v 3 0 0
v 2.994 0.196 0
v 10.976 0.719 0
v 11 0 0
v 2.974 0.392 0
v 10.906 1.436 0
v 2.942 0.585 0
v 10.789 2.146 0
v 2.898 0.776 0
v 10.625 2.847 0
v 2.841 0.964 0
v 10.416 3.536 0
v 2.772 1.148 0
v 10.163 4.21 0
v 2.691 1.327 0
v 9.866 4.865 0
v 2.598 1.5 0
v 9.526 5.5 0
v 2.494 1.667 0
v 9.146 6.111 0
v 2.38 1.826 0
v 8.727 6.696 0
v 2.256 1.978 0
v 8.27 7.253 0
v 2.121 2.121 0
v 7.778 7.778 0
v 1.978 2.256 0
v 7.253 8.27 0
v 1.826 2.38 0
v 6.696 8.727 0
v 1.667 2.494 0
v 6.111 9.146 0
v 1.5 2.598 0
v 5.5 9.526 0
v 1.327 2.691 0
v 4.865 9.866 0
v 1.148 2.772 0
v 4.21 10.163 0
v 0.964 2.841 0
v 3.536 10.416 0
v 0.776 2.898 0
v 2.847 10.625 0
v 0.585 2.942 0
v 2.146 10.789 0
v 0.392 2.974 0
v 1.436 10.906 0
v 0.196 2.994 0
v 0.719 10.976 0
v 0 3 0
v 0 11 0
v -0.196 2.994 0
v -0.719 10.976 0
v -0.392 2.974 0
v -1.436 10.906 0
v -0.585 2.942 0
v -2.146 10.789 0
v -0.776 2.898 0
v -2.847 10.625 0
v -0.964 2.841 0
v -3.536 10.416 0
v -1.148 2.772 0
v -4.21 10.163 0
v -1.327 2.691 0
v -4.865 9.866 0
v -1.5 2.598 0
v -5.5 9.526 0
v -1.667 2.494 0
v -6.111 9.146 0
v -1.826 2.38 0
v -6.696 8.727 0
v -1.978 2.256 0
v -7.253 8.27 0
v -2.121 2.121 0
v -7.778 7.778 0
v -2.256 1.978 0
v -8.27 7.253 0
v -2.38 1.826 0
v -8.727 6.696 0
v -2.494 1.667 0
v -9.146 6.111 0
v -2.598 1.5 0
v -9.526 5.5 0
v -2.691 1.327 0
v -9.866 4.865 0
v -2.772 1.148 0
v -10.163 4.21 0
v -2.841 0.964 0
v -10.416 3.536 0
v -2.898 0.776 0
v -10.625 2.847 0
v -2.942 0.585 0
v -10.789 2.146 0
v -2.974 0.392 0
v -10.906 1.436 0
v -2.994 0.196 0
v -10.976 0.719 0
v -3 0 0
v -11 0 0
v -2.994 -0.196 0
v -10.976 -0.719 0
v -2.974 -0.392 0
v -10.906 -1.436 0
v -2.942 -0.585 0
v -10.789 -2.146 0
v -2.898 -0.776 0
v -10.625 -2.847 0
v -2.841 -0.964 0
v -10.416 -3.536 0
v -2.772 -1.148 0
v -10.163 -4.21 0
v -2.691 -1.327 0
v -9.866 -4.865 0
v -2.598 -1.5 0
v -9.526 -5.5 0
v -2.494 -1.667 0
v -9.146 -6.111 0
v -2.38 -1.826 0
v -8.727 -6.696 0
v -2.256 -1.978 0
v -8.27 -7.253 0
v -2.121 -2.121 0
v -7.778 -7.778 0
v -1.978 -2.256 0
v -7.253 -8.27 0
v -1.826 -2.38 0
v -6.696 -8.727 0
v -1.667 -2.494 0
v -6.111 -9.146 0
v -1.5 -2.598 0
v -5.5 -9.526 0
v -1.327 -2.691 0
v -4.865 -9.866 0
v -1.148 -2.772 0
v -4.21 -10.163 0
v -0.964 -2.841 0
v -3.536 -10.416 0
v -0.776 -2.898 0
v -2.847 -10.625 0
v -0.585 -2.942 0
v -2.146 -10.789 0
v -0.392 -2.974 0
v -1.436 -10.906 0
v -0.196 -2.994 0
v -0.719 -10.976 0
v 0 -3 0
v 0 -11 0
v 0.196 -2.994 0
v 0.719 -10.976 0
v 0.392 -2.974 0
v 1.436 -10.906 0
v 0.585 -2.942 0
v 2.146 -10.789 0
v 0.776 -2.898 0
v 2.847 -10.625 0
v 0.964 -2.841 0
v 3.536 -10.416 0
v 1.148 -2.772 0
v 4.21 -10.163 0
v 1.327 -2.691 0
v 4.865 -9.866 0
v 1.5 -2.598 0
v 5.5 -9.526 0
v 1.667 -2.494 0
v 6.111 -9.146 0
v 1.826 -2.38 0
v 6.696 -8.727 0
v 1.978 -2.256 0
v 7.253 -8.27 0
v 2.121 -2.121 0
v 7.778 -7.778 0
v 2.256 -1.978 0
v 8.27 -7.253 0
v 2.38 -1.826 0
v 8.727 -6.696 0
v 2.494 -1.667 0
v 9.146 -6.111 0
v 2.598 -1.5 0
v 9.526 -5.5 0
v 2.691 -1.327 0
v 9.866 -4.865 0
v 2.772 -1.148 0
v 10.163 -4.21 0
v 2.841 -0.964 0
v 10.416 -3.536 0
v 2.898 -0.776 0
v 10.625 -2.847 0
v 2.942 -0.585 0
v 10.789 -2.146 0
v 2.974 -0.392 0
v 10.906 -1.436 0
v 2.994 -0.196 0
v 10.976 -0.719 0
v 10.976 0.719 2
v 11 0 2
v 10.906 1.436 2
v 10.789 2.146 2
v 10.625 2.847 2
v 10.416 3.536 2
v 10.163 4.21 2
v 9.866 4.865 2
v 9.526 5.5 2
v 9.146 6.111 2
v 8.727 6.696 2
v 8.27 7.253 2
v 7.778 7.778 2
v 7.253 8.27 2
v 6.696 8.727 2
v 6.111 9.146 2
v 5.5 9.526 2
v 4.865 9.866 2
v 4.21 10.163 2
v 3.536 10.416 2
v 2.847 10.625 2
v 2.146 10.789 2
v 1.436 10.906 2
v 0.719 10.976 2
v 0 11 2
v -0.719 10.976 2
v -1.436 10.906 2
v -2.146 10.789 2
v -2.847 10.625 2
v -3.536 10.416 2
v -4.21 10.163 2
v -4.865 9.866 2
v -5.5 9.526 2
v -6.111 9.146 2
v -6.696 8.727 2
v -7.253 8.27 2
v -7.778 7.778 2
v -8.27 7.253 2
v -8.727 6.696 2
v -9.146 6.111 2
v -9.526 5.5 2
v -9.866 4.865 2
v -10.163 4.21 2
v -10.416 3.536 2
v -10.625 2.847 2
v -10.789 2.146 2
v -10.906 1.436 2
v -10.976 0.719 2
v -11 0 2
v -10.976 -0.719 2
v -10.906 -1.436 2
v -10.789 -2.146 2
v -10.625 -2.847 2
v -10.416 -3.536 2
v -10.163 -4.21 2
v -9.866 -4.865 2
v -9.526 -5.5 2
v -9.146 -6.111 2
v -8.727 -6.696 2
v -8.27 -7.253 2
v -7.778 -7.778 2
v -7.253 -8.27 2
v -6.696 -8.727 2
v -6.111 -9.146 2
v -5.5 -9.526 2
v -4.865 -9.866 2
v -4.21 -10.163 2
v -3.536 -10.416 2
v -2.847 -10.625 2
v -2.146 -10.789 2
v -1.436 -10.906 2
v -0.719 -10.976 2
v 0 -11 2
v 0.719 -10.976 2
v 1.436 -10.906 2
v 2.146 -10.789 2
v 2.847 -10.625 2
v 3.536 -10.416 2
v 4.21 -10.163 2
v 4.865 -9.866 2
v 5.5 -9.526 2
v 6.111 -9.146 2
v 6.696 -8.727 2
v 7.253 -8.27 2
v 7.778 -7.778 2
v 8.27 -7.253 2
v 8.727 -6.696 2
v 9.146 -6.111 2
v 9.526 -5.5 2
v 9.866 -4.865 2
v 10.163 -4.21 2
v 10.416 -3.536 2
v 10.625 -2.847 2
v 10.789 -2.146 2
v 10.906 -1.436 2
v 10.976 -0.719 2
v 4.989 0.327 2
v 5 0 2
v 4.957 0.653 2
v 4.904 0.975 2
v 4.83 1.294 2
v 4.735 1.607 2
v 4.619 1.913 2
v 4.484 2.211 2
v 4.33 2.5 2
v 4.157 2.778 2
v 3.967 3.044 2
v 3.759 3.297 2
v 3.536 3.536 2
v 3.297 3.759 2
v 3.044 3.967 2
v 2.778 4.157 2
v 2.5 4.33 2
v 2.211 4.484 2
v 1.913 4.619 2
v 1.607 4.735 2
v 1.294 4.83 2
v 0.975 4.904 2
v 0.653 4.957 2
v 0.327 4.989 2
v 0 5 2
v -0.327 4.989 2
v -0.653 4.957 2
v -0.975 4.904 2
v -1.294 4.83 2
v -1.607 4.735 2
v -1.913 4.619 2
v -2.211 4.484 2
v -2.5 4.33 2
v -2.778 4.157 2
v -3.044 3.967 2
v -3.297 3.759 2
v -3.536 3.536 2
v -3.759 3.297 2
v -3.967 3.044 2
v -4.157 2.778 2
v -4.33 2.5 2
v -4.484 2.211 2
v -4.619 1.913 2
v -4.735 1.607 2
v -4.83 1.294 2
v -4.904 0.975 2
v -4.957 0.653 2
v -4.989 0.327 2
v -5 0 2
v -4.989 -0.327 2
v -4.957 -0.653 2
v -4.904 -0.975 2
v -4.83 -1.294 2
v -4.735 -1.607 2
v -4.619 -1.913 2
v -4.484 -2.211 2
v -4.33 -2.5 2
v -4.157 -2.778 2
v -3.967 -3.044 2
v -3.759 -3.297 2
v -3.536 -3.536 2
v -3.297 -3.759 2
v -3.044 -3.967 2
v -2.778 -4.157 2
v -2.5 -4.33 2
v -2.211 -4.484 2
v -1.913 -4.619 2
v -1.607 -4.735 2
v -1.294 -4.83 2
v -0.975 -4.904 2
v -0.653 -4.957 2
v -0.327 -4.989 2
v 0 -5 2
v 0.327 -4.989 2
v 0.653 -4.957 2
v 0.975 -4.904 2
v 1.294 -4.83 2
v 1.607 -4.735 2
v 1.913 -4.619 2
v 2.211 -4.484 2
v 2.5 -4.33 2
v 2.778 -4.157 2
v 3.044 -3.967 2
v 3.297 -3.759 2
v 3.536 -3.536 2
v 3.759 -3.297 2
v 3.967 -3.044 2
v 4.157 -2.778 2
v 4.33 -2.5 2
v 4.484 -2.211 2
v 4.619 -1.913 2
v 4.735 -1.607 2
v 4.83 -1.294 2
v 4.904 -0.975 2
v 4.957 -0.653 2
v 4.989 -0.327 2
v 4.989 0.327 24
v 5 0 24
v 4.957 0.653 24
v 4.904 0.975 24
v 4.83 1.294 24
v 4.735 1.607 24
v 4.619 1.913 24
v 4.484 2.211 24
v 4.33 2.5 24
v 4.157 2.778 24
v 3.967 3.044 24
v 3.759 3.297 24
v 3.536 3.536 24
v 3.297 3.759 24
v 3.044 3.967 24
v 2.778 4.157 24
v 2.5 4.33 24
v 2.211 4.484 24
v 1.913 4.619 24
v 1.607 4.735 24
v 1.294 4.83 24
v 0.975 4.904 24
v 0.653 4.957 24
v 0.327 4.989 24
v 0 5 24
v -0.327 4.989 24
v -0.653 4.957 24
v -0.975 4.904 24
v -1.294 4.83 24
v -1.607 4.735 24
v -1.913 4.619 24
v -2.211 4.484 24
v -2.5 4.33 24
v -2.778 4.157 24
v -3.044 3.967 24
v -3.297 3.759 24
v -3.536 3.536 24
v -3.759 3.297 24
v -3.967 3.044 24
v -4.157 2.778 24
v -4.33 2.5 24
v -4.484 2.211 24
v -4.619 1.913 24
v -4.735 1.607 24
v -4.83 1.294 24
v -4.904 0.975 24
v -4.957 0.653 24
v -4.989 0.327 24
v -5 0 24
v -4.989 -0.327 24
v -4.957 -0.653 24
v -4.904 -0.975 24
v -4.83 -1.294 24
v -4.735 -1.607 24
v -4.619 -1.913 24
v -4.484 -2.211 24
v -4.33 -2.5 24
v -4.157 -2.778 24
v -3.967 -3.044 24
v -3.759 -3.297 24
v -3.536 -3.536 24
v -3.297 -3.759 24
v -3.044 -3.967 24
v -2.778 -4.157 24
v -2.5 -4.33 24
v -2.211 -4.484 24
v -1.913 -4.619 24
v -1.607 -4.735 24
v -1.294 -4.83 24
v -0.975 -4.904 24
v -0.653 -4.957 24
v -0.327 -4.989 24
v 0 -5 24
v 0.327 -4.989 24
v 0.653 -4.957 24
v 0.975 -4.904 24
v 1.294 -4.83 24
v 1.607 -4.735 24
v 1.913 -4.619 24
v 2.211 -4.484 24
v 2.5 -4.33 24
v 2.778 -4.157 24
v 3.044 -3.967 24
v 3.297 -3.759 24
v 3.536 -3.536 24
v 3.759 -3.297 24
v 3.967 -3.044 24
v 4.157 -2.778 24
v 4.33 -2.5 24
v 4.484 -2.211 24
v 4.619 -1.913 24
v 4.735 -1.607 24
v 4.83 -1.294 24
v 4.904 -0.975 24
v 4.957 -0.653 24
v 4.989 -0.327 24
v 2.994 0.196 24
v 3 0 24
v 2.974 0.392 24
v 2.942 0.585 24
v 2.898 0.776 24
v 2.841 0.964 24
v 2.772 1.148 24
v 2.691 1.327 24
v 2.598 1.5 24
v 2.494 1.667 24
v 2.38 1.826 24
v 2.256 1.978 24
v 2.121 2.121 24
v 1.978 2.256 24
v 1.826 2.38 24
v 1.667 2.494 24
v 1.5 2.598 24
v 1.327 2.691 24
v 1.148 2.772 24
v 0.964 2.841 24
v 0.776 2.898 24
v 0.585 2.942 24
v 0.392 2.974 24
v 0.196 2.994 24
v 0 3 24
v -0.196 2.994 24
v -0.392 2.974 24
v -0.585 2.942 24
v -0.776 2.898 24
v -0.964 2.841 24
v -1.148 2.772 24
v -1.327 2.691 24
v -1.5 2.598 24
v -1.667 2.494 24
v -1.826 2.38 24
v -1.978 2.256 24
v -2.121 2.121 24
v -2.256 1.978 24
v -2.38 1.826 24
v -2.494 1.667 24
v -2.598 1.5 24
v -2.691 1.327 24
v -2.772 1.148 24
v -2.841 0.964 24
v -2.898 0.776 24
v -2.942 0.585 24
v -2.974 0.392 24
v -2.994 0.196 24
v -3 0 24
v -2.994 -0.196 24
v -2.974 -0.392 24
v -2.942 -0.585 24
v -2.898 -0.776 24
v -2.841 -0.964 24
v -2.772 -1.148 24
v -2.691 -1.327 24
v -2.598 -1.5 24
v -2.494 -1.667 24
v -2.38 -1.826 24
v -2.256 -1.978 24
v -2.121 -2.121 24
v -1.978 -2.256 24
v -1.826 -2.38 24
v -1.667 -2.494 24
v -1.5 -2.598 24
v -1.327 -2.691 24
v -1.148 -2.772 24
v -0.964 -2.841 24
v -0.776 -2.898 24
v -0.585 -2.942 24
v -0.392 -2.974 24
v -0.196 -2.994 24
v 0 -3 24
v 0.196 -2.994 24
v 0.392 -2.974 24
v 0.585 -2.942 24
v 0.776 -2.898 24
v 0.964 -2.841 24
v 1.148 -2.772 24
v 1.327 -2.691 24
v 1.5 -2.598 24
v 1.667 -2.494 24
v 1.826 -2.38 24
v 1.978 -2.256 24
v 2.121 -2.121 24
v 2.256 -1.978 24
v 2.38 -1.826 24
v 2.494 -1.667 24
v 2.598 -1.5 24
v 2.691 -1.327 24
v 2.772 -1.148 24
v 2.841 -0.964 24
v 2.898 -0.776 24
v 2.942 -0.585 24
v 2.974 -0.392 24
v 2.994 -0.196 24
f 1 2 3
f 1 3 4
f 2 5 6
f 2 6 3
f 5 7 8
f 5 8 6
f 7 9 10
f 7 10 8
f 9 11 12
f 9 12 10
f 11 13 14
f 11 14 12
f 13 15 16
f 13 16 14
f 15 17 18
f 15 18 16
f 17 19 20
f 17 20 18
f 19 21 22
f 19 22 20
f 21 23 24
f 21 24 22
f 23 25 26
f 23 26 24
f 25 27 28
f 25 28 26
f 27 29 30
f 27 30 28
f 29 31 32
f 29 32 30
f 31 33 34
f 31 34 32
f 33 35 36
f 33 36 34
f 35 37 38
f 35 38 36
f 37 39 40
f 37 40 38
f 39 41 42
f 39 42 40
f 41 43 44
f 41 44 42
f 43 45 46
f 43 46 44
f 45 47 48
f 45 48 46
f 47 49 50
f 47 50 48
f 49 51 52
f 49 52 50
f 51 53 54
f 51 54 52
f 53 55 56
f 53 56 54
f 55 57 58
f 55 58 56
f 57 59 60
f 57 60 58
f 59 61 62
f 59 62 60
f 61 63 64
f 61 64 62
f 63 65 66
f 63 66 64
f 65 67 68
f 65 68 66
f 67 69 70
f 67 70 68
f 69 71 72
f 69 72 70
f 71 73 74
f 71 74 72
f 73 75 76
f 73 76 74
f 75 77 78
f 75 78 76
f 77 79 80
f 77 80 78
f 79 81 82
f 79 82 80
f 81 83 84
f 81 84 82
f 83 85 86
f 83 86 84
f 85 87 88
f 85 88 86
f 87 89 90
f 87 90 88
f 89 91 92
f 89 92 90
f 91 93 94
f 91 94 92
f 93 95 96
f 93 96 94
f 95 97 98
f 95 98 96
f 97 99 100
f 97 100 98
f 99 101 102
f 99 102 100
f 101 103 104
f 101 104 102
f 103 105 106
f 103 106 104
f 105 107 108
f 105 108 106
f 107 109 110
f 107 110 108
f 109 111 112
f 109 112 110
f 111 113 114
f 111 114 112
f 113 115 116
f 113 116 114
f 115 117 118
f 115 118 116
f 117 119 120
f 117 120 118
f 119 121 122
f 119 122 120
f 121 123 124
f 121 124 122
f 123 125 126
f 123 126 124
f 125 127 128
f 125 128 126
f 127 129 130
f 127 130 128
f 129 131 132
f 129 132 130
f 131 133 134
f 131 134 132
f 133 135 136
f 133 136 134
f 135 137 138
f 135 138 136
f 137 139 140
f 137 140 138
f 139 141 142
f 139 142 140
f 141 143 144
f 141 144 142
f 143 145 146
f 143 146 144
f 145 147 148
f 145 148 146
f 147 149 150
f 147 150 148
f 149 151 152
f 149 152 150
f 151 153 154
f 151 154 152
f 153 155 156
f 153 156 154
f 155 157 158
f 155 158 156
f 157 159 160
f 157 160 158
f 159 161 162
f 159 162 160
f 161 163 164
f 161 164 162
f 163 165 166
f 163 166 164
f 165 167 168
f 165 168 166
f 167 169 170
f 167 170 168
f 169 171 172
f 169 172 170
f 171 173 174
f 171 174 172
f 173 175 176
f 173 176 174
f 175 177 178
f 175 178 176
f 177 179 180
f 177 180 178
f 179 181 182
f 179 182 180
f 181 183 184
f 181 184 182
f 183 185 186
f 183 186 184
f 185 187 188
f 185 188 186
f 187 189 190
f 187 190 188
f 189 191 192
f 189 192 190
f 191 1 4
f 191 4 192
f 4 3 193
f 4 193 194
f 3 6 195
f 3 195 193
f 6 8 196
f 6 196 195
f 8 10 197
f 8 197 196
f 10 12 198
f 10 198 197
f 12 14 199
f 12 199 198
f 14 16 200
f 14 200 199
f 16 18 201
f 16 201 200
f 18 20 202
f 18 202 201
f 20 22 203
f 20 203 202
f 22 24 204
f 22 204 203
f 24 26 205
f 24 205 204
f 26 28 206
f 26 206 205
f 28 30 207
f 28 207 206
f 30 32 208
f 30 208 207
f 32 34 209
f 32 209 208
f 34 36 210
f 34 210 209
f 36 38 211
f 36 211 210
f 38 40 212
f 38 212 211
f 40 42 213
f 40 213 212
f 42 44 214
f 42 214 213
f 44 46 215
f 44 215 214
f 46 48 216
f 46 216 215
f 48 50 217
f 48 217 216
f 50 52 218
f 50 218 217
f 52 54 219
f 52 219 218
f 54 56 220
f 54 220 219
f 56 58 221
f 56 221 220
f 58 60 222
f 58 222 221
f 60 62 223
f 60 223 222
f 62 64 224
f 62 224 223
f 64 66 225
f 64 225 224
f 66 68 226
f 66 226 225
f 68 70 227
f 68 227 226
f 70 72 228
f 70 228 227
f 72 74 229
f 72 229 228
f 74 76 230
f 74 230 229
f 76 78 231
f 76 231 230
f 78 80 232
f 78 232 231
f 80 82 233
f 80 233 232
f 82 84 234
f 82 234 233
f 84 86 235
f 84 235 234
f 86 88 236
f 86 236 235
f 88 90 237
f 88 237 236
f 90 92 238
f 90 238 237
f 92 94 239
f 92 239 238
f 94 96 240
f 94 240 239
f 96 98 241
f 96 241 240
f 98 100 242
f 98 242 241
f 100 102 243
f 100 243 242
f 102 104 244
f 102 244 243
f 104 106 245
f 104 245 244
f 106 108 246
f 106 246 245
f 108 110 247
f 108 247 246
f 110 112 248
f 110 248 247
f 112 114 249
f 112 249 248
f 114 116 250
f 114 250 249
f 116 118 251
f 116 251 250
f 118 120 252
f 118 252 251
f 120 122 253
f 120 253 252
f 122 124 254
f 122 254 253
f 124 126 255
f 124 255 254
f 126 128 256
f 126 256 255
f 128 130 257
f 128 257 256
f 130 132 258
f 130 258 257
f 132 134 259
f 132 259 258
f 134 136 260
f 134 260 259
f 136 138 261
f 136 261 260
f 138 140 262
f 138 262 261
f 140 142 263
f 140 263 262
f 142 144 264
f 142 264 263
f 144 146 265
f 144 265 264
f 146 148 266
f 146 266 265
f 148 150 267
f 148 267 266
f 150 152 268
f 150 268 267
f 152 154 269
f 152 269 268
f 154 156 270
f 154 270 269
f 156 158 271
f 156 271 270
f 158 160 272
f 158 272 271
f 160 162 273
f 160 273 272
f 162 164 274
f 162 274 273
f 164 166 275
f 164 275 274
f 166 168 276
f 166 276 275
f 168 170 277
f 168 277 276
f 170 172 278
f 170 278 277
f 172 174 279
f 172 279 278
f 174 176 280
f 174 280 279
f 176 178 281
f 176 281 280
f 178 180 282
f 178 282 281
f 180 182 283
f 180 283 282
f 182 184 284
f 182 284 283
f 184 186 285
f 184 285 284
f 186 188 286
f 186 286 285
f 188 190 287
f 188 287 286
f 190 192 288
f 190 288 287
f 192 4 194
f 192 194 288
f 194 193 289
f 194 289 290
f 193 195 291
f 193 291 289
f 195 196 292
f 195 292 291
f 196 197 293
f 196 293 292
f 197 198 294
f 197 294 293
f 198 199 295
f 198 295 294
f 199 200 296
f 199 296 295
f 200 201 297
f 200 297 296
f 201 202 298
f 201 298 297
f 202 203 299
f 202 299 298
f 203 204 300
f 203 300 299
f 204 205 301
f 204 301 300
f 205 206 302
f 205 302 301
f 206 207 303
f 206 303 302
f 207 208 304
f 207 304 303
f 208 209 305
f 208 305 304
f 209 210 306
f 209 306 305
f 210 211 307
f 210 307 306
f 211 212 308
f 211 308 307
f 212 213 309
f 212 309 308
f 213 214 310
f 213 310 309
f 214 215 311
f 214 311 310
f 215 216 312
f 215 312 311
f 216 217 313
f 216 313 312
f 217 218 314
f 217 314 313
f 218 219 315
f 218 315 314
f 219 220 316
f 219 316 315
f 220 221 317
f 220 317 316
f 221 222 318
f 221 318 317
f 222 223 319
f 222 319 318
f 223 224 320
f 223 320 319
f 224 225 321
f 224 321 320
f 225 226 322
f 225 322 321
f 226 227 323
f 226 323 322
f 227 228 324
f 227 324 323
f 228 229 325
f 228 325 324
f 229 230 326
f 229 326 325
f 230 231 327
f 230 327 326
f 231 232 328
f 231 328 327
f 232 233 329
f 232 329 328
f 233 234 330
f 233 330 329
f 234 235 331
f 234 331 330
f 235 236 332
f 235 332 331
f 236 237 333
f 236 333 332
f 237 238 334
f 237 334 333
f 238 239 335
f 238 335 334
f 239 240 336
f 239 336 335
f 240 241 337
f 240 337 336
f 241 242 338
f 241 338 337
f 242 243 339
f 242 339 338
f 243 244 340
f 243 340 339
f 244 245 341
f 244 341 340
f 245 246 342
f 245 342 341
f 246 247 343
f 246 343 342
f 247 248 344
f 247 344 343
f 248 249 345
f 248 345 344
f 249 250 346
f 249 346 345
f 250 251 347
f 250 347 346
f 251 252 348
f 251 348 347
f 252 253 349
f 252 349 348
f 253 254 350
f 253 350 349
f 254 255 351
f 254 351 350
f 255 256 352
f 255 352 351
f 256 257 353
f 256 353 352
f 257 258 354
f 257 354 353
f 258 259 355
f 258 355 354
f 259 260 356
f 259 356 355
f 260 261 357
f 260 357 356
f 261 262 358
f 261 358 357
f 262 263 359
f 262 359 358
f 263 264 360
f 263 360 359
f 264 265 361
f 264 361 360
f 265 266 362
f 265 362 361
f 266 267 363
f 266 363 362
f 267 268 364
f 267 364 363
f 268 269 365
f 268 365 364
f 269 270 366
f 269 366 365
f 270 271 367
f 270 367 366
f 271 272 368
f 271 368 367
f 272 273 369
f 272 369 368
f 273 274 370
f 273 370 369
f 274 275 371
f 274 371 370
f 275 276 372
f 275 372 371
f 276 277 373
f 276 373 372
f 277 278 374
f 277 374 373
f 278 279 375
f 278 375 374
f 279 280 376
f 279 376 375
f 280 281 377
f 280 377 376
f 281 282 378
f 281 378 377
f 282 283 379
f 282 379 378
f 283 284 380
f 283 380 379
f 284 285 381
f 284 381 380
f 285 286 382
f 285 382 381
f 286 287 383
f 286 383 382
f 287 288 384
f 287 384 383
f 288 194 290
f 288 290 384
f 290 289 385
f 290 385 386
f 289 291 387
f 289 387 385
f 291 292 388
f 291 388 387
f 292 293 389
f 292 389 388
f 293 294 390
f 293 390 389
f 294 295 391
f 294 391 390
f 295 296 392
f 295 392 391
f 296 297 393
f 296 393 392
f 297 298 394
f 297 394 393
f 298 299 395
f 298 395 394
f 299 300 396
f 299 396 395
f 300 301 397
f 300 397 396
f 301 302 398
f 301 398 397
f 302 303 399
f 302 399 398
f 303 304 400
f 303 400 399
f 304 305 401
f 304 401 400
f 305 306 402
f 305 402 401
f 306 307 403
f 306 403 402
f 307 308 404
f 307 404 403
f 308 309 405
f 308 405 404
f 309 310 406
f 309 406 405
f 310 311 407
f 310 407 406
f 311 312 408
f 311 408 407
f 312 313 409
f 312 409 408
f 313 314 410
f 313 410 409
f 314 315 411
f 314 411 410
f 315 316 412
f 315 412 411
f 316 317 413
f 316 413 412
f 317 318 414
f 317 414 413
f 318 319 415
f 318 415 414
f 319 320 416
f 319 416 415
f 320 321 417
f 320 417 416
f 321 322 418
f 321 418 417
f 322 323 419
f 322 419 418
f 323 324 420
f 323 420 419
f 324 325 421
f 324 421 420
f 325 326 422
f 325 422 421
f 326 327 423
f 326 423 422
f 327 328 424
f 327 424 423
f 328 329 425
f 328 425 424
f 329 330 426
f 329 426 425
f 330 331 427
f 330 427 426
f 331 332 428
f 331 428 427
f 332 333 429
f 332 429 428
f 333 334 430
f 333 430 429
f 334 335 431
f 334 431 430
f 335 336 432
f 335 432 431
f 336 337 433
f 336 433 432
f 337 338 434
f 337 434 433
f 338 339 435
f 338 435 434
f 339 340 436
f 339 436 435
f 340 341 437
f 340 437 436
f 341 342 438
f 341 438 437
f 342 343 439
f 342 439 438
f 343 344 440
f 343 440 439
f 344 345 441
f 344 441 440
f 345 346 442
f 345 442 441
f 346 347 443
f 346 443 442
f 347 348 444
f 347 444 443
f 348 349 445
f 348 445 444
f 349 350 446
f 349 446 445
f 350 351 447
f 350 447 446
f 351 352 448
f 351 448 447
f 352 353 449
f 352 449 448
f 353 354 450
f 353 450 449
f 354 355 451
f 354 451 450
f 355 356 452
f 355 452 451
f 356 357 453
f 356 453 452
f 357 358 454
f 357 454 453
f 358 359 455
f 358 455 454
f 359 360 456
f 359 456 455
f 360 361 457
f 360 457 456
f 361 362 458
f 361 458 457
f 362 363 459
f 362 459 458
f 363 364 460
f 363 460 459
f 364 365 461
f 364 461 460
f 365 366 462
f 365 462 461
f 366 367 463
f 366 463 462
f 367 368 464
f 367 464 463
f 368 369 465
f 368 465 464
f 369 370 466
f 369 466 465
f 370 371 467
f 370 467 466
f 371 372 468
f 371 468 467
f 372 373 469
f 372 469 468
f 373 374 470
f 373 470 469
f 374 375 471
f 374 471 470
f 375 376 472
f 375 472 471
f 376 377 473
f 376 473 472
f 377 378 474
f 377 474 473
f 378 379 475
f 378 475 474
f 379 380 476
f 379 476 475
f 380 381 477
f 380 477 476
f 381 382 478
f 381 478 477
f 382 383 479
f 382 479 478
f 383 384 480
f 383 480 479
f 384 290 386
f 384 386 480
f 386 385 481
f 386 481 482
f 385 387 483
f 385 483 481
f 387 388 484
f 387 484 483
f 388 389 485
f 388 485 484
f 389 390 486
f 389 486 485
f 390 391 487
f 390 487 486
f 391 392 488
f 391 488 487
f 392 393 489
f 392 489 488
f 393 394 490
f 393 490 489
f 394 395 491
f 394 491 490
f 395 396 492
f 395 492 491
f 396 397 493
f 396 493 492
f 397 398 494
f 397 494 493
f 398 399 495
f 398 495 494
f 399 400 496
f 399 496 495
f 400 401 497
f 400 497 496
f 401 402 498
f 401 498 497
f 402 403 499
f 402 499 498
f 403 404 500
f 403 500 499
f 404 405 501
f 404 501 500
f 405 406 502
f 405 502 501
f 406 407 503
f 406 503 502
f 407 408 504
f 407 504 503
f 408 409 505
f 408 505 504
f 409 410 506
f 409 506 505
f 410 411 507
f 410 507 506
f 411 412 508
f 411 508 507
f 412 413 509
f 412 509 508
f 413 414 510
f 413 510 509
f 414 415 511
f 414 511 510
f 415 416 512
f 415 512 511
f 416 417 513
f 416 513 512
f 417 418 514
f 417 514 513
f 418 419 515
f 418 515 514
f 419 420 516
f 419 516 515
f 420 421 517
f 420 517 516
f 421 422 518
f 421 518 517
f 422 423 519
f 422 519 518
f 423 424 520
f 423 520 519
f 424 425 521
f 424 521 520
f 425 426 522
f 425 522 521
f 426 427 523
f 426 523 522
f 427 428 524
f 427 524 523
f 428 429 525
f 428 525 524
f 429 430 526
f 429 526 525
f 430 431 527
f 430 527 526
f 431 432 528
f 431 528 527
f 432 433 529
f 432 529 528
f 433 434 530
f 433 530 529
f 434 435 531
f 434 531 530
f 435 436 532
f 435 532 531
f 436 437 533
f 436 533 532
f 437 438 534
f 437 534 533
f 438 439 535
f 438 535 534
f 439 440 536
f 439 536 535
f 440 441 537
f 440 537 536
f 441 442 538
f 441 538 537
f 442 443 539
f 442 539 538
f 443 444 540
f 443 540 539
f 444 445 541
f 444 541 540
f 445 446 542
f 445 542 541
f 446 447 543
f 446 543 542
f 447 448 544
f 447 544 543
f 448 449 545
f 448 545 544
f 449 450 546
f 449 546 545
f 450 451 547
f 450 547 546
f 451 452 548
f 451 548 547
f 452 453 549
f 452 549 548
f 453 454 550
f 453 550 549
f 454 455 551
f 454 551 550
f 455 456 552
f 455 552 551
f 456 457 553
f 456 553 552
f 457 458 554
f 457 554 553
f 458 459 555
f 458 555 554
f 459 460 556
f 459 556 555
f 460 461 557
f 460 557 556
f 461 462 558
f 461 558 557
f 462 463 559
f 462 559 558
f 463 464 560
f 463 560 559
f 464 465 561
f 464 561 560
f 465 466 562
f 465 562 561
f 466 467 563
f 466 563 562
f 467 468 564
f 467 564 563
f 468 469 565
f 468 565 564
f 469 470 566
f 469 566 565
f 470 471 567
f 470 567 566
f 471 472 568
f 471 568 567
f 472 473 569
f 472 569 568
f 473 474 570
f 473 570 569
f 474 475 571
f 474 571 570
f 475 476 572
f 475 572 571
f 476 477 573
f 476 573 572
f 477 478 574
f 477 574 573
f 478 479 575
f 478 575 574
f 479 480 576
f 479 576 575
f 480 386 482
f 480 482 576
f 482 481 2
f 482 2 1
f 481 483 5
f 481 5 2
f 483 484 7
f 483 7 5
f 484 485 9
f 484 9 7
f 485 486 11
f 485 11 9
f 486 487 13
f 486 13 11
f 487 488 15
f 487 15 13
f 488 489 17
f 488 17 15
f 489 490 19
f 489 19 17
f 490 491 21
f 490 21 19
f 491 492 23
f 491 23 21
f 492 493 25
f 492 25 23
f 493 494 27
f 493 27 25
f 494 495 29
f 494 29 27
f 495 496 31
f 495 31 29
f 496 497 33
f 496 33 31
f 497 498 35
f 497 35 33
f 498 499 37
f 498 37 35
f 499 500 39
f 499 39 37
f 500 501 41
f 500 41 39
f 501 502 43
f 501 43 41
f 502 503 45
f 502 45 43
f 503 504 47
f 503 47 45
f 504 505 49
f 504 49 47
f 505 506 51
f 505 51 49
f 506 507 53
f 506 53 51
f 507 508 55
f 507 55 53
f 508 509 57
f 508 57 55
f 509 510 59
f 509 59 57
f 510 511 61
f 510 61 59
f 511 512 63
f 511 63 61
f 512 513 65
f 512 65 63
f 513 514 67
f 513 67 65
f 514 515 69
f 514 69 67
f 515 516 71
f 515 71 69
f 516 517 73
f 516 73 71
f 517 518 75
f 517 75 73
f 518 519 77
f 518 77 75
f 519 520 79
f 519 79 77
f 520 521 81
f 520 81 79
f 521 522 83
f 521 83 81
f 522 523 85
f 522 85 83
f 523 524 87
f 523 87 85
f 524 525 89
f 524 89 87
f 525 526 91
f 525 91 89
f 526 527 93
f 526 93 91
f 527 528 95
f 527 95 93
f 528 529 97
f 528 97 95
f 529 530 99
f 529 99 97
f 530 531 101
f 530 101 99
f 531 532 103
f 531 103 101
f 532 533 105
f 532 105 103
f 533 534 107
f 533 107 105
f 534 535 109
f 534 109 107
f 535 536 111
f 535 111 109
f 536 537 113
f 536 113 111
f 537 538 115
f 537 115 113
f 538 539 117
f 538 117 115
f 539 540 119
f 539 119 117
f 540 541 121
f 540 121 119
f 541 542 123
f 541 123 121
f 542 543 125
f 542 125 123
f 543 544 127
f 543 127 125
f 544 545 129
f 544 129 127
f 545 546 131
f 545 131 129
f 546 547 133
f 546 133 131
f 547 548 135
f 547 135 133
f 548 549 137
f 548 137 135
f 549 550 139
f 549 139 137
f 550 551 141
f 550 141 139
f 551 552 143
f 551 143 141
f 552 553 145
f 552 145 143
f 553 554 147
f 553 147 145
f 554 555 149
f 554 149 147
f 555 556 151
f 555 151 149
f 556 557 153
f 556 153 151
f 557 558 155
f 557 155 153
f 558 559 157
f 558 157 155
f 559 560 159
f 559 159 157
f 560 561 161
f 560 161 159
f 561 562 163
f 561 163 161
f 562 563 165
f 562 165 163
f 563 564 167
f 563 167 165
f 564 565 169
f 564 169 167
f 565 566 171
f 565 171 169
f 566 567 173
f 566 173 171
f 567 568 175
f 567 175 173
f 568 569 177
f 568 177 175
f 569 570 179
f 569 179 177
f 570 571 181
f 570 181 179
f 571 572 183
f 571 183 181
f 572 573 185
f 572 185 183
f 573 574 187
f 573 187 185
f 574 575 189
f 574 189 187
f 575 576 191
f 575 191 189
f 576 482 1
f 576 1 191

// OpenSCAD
// Original MechIntel educational model. CC0-1.0. Units: mm.
// Not a standardized or load-rated component.
$fn=96;
// Section points: [radius, height], mm. Edit to change the profile.
section=[[3, 0], [11, 0], [11, 2], [5, 2], [5, 24], [3, 24]];
rotate_extrude($fn=96) polygon(points=section);
